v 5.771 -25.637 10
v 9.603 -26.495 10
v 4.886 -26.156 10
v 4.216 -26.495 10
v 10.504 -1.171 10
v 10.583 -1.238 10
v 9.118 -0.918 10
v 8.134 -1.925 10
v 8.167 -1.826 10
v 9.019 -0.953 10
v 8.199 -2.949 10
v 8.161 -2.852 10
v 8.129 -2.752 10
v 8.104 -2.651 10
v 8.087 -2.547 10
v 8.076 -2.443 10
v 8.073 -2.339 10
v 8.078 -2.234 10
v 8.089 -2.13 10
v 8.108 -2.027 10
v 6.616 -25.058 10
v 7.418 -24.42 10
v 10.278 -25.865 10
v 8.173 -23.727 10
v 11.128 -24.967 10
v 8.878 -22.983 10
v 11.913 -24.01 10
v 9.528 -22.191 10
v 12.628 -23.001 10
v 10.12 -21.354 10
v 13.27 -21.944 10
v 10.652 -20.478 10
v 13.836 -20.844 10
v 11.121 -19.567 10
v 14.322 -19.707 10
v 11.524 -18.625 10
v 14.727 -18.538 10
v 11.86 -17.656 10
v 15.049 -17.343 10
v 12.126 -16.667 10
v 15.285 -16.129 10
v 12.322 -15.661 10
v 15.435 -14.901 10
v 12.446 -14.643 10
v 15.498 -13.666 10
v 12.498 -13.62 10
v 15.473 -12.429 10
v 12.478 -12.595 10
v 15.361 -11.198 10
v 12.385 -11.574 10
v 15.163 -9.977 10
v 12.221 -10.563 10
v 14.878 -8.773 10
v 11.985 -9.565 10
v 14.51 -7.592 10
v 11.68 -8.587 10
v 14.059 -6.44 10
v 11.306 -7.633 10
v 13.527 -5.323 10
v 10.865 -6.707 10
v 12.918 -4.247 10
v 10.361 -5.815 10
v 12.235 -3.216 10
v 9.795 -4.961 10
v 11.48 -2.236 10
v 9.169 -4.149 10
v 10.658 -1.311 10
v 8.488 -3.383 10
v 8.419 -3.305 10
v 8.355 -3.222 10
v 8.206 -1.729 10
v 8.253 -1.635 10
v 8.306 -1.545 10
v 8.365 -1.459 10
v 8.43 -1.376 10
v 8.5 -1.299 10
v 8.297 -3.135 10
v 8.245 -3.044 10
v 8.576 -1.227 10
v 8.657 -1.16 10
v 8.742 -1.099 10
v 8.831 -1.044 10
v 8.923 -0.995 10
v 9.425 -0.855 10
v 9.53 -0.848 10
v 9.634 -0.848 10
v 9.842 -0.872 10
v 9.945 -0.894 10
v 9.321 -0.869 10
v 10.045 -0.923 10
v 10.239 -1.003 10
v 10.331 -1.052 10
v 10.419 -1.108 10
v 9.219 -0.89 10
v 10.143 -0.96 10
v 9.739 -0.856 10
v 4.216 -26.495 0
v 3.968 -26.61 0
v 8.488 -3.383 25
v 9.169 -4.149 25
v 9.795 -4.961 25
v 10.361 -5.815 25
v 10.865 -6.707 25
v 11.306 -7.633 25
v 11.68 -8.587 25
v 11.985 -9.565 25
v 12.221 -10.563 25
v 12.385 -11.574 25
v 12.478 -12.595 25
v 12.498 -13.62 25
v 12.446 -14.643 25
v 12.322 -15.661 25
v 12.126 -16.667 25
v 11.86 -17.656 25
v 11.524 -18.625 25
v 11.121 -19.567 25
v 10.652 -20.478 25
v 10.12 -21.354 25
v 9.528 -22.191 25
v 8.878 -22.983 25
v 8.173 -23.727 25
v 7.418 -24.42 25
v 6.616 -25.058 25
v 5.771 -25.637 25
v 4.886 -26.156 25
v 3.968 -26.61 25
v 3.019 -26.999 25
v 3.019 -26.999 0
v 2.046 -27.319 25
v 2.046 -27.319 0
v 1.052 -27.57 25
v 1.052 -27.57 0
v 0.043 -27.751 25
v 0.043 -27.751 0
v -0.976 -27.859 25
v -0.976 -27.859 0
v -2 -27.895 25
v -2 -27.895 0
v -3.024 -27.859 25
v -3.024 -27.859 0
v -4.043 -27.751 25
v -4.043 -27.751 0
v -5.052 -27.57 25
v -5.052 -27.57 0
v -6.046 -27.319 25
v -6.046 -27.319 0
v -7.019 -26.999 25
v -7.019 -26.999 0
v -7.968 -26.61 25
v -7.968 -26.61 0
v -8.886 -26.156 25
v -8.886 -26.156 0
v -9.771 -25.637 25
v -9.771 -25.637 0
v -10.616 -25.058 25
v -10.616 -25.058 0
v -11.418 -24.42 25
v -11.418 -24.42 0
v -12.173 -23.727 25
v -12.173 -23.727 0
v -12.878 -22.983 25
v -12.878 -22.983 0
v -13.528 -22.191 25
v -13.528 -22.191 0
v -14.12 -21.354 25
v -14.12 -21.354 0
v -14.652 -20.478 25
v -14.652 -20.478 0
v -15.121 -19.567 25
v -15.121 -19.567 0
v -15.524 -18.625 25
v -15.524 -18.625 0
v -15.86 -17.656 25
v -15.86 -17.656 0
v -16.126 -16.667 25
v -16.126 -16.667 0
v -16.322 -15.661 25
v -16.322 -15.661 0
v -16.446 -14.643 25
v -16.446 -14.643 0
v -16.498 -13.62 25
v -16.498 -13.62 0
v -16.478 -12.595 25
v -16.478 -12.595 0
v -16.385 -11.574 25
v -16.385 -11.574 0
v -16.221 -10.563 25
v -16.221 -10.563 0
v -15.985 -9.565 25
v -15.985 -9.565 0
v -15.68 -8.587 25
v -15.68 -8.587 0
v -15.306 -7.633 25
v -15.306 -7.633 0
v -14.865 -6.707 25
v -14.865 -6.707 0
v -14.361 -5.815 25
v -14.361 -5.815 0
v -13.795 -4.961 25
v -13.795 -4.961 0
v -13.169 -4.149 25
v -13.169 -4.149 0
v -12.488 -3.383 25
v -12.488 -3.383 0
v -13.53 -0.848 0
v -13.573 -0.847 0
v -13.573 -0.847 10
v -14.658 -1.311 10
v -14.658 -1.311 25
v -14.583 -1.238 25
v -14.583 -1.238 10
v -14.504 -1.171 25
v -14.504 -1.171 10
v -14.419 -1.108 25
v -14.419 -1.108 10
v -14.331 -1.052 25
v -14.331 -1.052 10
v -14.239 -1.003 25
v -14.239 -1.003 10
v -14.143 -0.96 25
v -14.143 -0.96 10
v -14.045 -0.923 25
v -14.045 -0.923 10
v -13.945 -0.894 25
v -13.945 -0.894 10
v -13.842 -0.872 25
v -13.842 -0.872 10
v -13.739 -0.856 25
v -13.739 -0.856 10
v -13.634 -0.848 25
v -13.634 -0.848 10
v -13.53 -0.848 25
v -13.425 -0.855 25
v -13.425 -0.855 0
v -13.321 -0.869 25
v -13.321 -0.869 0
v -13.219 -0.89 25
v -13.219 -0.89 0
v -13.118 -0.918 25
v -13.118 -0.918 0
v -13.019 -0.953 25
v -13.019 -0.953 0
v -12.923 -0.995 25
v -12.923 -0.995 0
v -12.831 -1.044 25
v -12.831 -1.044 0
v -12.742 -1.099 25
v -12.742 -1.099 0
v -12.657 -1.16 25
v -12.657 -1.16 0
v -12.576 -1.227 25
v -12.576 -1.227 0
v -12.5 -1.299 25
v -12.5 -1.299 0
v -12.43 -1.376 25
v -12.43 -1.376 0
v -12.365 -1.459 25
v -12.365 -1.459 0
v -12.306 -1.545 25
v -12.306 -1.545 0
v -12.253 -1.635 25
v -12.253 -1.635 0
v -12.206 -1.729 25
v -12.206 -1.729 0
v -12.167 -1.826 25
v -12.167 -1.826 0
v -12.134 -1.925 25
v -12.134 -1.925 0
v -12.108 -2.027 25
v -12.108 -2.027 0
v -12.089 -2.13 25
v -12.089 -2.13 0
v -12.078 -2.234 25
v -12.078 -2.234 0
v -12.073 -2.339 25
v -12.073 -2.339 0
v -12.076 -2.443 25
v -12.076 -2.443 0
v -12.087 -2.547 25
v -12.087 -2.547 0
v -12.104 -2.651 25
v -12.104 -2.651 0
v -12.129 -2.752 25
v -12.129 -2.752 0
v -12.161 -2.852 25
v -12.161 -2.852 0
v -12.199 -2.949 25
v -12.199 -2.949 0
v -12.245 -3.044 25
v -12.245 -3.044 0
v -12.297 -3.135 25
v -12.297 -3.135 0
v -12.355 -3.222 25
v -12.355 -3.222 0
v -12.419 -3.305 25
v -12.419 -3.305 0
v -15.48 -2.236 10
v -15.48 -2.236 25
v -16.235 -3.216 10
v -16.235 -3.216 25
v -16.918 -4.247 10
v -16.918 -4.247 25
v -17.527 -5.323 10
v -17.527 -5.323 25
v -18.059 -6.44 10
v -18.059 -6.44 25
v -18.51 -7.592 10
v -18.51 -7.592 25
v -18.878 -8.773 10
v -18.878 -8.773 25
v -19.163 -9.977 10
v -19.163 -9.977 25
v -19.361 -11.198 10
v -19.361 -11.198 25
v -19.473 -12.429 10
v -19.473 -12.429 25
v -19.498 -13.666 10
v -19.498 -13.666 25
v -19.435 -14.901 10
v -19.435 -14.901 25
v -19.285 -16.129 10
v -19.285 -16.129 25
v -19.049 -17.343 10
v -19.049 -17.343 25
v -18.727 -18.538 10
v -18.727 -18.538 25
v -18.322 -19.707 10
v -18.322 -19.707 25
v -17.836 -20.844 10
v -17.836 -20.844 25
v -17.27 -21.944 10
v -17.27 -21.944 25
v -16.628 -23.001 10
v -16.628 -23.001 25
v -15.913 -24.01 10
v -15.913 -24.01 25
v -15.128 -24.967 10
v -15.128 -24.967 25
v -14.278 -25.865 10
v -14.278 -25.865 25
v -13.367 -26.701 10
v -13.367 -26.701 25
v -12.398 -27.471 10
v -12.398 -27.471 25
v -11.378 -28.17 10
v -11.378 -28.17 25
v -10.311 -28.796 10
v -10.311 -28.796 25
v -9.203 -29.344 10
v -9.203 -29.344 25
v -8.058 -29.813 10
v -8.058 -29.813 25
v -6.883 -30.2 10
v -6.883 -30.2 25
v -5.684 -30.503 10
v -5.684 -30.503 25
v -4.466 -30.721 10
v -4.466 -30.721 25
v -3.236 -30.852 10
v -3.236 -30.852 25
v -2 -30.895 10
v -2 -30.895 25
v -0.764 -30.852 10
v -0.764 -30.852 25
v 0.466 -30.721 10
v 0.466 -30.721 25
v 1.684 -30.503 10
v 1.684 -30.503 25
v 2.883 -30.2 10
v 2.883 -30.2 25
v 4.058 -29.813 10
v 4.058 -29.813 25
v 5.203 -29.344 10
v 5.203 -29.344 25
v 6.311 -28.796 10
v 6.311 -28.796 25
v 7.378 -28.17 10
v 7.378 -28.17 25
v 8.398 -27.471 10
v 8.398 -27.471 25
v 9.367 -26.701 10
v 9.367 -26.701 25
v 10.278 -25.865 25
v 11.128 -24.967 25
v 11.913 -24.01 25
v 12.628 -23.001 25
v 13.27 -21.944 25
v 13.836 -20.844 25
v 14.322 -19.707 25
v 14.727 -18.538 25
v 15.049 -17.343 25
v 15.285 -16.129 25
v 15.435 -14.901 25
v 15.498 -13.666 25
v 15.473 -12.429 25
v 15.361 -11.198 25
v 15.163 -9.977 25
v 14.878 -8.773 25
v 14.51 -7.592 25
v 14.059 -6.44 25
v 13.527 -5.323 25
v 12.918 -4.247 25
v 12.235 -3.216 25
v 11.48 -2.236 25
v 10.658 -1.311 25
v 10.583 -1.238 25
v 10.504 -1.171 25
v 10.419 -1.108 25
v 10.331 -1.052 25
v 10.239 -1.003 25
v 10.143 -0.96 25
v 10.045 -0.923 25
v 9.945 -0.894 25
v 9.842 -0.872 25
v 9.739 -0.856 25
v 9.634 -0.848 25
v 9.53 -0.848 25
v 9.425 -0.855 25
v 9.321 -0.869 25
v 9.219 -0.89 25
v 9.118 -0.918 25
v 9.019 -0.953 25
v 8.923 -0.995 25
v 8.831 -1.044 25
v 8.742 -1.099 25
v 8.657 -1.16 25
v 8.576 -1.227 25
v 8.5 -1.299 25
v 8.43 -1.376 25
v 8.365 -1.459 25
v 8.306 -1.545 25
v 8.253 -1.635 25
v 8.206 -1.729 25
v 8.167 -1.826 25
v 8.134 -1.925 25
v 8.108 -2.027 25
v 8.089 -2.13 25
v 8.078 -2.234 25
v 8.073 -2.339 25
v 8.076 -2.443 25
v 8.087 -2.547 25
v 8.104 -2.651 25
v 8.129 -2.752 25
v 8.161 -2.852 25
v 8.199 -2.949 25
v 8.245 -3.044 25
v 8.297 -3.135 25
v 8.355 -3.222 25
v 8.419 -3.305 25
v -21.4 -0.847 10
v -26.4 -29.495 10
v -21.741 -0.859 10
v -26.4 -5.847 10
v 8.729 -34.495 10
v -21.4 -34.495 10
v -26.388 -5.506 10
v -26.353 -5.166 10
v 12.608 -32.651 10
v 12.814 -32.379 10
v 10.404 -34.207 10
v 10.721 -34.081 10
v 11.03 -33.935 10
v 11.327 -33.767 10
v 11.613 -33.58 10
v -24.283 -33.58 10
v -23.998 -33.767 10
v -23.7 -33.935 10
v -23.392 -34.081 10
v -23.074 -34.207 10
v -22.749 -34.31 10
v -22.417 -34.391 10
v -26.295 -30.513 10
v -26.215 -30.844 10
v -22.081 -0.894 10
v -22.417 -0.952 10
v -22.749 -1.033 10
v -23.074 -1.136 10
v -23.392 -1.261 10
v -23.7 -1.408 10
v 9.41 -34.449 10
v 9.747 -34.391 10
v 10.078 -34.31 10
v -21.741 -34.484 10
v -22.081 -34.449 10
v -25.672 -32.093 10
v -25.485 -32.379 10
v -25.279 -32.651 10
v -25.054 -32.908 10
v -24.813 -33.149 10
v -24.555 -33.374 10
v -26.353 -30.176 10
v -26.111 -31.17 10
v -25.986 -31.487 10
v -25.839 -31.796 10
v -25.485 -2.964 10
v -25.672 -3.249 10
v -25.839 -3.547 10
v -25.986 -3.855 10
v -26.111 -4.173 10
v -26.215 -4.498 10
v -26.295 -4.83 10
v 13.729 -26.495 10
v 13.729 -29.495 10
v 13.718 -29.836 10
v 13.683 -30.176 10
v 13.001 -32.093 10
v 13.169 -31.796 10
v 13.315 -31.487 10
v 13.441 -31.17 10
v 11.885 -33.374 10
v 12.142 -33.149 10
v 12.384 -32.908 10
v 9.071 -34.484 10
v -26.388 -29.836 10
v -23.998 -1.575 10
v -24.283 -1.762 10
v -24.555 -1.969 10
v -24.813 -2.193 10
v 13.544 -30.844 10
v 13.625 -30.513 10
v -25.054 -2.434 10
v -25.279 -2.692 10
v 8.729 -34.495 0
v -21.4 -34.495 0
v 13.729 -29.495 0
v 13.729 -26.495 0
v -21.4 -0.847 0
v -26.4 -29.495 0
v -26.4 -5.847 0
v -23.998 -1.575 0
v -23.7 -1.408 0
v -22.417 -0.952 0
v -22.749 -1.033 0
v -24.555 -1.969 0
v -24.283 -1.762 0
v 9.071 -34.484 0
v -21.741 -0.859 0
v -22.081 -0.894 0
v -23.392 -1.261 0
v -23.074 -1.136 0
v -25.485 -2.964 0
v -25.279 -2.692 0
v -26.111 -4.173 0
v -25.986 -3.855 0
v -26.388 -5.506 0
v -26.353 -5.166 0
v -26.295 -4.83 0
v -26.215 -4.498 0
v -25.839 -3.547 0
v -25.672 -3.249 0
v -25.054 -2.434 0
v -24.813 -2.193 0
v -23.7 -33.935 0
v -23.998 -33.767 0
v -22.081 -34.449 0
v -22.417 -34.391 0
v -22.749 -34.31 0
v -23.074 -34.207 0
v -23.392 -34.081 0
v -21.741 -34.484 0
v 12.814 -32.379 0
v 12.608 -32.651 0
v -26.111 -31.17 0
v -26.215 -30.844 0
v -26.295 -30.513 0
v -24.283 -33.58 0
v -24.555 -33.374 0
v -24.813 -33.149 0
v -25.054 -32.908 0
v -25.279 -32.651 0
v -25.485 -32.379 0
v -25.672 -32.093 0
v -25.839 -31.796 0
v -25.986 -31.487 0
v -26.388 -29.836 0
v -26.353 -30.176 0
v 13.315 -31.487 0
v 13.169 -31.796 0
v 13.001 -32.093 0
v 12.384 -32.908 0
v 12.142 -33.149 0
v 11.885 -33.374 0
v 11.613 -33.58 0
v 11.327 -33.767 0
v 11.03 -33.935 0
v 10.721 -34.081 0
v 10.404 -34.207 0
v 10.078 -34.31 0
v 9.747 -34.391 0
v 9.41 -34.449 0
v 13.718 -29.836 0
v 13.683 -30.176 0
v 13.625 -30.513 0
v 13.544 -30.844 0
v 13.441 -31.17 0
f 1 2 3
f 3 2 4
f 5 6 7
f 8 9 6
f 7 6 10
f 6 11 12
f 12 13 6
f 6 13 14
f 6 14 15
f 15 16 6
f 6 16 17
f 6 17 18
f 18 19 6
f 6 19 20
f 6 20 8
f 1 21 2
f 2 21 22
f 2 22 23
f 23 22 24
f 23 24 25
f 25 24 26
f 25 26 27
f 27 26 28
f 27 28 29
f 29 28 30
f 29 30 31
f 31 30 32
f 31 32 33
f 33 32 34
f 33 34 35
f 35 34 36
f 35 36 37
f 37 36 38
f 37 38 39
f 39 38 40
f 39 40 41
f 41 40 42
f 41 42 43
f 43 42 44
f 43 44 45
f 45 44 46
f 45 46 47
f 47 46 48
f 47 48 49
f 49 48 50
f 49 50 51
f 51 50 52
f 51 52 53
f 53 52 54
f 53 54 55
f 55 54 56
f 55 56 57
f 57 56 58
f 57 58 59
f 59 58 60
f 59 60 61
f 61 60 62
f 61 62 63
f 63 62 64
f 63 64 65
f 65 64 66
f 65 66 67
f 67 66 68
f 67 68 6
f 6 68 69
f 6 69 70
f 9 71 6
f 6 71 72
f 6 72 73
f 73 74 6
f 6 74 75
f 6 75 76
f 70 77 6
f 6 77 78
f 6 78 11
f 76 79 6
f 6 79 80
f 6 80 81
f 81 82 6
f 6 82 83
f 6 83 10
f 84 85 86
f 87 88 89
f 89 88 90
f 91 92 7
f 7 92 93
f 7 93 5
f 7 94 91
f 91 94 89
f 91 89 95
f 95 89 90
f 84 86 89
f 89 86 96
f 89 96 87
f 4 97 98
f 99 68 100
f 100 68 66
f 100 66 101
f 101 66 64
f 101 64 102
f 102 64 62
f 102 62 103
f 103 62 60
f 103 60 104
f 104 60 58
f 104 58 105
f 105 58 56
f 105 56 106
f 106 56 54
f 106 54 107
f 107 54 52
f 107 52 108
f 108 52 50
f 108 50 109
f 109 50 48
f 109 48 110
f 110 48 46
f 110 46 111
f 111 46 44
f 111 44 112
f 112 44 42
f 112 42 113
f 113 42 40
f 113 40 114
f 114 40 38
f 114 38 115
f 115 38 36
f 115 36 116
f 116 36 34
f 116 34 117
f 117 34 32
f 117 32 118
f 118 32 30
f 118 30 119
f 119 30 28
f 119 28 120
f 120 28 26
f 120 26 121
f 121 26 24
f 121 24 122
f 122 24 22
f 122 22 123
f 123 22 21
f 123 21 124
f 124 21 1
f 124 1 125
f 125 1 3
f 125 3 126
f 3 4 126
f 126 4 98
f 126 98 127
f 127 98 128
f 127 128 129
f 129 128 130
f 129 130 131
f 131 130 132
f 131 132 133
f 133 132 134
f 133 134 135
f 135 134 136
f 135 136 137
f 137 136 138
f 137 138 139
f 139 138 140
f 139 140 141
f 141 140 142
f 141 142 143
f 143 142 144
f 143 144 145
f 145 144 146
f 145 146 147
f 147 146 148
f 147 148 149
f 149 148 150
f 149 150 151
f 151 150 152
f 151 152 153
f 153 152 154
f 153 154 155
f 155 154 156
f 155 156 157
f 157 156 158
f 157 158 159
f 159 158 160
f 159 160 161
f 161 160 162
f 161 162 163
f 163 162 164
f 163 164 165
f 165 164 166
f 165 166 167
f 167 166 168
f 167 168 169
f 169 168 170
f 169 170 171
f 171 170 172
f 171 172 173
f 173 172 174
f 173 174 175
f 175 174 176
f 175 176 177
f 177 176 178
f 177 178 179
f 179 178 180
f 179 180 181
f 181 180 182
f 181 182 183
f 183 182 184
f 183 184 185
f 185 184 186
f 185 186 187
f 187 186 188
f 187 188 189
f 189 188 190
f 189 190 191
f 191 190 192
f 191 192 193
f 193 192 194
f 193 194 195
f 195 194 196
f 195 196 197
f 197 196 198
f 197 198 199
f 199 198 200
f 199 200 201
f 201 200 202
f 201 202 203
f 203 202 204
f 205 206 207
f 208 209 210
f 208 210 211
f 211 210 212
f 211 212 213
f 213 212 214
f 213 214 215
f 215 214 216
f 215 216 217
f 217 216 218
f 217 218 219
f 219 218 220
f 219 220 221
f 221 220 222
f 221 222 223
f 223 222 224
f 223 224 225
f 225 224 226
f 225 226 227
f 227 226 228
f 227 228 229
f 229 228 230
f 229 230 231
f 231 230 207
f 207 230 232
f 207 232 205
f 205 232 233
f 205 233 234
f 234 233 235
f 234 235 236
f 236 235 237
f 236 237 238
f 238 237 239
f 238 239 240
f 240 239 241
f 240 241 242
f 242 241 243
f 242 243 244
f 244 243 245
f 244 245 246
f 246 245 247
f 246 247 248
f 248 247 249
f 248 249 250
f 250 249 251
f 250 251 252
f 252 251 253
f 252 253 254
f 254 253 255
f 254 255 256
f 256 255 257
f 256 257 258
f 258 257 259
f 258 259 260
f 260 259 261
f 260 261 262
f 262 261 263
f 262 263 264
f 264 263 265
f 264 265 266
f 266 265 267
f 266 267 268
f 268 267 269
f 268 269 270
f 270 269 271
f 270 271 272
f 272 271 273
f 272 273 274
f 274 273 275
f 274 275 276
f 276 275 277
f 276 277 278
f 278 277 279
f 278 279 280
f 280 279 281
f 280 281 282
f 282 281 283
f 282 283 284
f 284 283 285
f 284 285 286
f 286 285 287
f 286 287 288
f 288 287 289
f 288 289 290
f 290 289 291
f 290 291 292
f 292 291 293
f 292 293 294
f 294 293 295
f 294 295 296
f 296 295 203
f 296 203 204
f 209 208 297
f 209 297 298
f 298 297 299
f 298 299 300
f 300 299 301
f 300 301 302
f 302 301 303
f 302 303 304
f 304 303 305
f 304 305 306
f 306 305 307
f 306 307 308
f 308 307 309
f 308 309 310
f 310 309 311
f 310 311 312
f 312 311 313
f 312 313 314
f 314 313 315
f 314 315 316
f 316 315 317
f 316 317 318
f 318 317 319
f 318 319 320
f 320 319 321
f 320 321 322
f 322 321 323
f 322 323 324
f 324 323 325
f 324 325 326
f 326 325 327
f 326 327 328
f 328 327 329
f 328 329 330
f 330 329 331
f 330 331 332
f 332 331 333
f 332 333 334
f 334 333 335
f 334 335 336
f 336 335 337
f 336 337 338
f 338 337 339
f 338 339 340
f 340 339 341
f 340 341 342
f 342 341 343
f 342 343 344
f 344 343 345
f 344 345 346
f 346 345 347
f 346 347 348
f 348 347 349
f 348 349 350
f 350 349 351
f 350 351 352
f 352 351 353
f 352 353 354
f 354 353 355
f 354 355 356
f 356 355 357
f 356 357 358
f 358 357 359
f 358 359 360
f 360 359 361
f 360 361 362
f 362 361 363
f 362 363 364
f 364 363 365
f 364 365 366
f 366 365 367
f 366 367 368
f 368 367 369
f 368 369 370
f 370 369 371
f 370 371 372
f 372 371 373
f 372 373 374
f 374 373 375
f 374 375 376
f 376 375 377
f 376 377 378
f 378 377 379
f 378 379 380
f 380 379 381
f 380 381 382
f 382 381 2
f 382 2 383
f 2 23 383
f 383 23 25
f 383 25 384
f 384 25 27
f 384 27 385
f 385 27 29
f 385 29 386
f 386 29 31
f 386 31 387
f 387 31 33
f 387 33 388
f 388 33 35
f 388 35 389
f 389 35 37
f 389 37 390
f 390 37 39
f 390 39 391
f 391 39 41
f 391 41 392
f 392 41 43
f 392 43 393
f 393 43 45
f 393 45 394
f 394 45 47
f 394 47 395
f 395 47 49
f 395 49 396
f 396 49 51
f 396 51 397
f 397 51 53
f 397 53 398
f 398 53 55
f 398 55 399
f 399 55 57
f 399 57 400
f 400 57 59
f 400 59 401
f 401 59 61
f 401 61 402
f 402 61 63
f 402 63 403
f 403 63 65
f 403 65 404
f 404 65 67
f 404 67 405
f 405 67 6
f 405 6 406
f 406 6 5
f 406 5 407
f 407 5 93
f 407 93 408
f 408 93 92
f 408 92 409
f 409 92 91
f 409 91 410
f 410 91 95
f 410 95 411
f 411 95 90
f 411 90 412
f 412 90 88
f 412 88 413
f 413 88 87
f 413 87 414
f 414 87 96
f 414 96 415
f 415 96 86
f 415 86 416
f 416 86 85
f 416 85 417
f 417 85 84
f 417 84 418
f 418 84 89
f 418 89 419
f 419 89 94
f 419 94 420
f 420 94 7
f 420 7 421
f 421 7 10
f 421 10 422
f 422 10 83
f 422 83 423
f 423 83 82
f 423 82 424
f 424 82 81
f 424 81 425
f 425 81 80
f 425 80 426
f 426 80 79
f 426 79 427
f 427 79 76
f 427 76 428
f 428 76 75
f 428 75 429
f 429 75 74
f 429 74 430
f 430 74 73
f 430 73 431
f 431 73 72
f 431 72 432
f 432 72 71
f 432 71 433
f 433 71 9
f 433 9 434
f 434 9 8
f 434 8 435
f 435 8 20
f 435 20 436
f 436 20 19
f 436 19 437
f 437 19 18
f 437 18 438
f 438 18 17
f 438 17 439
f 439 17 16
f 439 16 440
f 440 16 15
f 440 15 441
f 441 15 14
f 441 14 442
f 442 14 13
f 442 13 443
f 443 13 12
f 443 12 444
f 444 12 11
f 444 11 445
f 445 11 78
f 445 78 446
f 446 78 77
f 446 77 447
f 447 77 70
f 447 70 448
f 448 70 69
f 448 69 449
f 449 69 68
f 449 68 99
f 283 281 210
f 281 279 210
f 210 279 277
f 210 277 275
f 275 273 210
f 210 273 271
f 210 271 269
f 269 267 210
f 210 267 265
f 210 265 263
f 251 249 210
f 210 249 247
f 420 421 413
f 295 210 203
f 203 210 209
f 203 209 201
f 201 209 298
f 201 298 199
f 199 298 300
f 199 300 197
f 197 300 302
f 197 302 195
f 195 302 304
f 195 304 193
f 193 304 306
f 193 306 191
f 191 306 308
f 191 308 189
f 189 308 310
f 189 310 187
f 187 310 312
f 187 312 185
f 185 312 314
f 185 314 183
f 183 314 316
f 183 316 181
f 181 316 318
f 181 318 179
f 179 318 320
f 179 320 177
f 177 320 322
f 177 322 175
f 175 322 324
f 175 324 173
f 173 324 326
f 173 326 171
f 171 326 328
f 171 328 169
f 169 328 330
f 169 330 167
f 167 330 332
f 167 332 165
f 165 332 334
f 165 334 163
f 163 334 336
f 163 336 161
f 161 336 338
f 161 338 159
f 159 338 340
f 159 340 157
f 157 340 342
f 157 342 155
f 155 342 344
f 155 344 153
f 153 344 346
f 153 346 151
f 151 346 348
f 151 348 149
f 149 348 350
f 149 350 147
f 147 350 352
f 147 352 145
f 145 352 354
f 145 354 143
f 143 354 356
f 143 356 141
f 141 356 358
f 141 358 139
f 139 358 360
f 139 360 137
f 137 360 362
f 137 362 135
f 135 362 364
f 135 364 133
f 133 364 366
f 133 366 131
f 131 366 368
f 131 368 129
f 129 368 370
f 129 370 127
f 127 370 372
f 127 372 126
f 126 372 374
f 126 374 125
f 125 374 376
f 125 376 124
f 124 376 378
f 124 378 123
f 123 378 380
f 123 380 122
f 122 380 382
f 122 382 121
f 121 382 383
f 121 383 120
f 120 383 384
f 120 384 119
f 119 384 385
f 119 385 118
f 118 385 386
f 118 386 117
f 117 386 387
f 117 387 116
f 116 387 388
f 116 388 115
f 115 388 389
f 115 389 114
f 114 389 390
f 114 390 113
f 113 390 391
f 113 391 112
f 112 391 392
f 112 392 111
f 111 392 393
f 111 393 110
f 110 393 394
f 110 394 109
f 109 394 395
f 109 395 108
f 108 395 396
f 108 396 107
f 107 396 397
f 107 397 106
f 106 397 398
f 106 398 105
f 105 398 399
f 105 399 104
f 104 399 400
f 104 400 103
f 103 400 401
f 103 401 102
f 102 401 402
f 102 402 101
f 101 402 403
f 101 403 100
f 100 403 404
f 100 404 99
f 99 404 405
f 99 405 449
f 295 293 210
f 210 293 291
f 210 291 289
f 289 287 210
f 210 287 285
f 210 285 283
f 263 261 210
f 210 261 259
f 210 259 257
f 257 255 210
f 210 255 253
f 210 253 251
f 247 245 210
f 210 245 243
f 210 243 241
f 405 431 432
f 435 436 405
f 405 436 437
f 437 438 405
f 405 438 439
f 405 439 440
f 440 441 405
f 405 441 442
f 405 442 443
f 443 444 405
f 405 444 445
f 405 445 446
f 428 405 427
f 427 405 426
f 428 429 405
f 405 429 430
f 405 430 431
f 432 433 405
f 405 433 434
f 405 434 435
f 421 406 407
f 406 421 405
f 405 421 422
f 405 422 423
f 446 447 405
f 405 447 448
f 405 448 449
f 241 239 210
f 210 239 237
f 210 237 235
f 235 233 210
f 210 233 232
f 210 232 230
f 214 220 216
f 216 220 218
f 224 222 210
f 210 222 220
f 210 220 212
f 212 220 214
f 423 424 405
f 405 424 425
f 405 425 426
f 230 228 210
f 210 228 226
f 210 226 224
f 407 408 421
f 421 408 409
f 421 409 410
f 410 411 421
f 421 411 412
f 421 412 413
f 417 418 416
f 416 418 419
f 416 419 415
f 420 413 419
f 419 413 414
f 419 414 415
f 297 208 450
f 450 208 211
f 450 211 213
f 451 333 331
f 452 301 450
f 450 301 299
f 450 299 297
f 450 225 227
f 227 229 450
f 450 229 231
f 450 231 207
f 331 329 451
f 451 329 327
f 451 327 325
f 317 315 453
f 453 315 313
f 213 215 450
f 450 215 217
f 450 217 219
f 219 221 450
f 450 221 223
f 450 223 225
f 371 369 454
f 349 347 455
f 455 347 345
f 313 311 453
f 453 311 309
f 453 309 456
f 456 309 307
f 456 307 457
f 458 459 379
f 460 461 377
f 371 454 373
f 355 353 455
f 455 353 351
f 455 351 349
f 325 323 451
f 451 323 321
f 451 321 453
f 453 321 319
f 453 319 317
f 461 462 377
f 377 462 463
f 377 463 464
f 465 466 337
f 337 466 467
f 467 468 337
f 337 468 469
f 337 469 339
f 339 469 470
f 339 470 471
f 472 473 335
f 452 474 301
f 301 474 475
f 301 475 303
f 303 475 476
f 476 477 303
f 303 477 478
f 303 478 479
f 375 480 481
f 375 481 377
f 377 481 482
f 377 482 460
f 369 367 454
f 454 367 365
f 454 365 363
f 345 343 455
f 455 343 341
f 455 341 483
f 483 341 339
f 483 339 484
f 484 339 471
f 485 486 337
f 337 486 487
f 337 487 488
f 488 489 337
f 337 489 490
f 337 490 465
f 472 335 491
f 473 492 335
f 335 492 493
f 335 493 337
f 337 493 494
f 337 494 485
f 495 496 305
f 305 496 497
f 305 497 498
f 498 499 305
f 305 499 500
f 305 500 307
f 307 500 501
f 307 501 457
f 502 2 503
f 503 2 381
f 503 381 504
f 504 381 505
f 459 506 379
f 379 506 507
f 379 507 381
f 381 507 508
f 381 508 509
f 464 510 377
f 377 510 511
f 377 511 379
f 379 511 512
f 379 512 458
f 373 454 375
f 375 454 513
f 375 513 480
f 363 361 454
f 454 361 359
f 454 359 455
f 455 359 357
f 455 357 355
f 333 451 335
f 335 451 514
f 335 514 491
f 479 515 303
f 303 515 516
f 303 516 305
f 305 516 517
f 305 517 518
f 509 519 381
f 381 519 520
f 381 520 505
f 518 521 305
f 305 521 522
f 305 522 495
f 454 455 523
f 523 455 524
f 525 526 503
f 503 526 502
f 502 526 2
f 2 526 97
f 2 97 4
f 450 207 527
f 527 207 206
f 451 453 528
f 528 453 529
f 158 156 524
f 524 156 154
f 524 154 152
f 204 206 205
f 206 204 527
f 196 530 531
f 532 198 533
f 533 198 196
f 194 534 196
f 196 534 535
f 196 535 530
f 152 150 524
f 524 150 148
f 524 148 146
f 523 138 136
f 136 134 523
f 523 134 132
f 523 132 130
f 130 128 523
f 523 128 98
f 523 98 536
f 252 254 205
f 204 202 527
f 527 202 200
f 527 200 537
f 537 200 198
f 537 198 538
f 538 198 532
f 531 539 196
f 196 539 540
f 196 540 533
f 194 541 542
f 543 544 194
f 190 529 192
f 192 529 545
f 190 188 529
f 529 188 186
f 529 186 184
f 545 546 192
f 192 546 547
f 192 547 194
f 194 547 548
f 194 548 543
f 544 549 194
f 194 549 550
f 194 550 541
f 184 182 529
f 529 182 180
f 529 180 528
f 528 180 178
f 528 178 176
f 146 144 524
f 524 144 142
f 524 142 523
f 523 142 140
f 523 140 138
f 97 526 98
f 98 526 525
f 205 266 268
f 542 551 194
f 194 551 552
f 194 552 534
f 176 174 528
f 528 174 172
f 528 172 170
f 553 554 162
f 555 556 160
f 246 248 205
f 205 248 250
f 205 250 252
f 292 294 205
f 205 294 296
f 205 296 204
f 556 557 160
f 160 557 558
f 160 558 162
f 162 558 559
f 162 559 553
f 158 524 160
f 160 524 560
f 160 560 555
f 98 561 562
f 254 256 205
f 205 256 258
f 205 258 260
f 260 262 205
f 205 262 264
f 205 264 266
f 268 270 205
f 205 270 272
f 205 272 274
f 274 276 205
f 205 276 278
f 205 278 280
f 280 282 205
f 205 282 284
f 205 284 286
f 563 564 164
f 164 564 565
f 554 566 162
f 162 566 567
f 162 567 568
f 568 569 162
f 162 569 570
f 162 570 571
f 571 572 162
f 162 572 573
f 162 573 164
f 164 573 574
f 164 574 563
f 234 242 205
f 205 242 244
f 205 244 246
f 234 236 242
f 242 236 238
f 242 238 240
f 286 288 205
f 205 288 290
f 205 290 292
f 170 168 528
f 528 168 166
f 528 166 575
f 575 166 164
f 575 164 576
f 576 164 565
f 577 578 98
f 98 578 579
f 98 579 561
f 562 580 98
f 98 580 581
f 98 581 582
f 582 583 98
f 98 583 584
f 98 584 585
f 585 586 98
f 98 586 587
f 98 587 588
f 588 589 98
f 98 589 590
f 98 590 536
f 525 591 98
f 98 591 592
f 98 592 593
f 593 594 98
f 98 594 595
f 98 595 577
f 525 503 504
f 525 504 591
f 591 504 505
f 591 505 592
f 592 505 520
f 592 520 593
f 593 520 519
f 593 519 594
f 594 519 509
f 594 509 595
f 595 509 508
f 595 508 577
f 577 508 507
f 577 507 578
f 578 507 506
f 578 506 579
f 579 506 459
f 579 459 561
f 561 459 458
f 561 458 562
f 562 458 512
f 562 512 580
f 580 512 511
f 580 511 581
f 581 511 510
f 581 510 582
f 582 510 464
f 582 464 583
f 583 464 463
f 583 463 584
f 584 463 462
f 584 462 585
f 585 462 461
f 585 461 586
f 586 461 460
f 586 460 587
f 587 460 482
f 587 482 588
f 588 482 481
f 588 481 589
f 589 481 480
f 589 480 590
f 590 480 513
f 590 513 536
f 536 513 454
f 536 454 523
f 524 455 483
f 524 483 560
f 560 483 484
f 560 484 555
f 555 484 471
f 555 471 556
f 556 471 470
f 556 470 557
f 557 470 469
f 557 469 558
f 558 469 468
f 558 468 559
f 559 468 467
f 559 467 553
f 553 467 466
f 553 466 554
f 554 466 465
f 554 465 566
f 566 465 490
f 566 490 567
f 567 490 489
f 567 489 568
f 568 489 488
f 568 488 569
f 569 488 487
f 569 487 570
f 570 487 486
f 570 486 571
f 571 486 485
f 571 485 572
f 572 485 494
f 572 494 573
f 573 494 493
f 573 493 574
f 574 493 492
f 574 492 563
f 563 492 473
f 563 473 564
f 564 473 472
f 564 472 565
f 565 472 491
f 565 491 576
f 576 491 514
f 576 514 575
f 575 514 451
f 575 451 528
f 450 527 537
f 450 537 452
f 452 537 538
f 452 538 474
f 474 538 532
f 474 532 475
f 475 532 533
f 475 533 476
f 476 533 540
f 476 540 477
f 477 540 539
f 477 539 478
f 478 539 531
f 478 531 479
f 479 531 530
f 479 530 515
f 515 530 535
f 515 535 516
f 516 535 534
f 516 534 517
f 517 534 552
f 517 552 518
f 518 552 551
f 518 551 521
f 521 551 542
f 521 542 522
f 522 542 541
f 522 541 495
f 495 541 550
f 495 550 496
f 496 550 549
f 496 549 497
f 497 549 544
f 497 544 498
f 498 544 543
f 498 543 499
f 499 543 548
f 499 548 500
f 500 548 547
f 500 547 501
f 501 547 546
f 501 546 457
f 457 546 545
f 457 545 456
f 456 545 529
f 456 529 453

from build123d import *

# Parameters (mm, degrees)
BOSS_EXTRUDE1_START = 10
BOSS_EXTRUDE1_DEPTH = 15
BOSS_EXTRUDE3_DEPTH = 10
FILLET1_R           = 5
BOSS_EXTRUDE4_START = 10
BOSS_EXTRUDE4_DEPTH = 10


with BuildPart() as part:
    # Sketch1 → Boss-Extrude1 (new body)
    with BuildSketch(Plane.XY.offset(BOSS_EXTRUDE1_START)):
        with BuildLine():
            ThreePointArc((8.488266962, -3.382949128), (-2.000000007, -27.895254363), (-12.488266953, -3.382949118))
            ThreePointArc((-12.488266953, -3.382949118), (-12.537504406, -1.262200246), (-14.658253277, -1.311437749))
            ThreePointArc((-14.658253277, -1.311437749), (-1.999999957, -30.895254363), (10.658253217, -1.311437686))
            ThreePointArc((10.658253217, -1.311437686), (8.53750437, -1.262200281), (8.488266962, -3.382949128))
        make_face()
    extrude(amount=BOSS_EXTRUDE1_DEPTH)

    # Sketch2 → Boss-Extrude3 (add)
    with BuildSketch(Plane.XY):
        with BuildLine():
            ThreePointArc((-12.488266958, -3.382949123), (-12.194196355, -1.757122894), (-13.573260086, -0.847193408))
            ThreePointArc((-13.573260086, -0.847193408), (-14.163330605, -0.968129672), (-14.658253225, -1.311437694))
            ThreePointArc((-14.658253225, -1.311437694), (-19.372506678, -15.503811146), (-11.4, -28.156351884))
            Line((-11.4, -28.156351884), (-11.4, -26.495254363))
            Line((-11.4, -26.495254363), (-11.4, -24.435634792))
            ThreePointArc((-11.4, -24.435634792), (-16.480665872, -14.143796874), (-12.488266958, -3.382949123))
        make_face()
        with BuildLine():
            ThreePointArc((-14.658253225, -1.311437694), (-14.163330605, -0.968129672), (-13.573260086, -0.847193408))
            Line((-13.573260086, -0.847193408), (-26.4, -0.847193408))
            Line((-26.4, -0.847193408), (-26.4, -34.495254363))
            Line((-26.4, -34.495254363), (-11.4, -34.495254363))
            Line((-11.4, -34.495254363), (-11.4, -28.156351884))
            ThreePointArc((-11.4, -28.156351884), (-19.372506678, -15.503811146), (-14.658253225, -1.311437694))
        make_face()
        with BuildLine():
            ThreePointArc((9.603447763, -26.495254363), (-0.620287438, -30.840780817), (-11.4, -28.156351884))
            Line((-11.4, -28.156351884), (-11.4, -34.495254363))
            Line((-11.4, -34.495254363), (13.729379502, -34.495254363))
            Line((13.729379502, -34.495254363), (13.729379502, -26.495254363))
            Line((13.729379502, -26.495254363), (9.603447763, -26.495254363))
        make_face()
        with BuildLine():
            Line((-8.216108107, -26.495254363), (-11.4, -26.495254363))
            Line((-11.4, -26.495254363), (-11.4, -28.156351884))
            ThreePointArc((-11.4, -28.156351884), (-0.620287438, -30.840780817), (9.603447763, -26.495254363))
            Line((9.603447763, -26.495254363), (4.216108107, -26.495254363))
            ThreePointArc((4.216108107, -26.495254363), (-2, -27.895254363), (-8.216108107, -26.495254363))
        make_face()
    extrude(amount=BOSS_EXTRUDE3_DEPTH)

    # Fillet1
    fillet1_edges = [part.edges().sort_by_distance(p)[0] for p in [
        (-26.4, -34.495254363, 5),
        (13.729379502, -34.495254363, 5),
        (-26.4, -0.847193408, 5),
    ]]
    fillet(fillet1_edges, radius=FILLET1_R)

    # Sketch4 → Boss-Extrude4 (add)
    with BuildSketch(Plane(origin=(0, 0, 10), x_dir=(-1, 0, 0), z_dir=(0, 0, -1)).offset(BOSS_EXTRUDE4_START)):
        with BuildLine():
            Line((8.216108107, -26.495254363), (11.4, -26.495254363))
            Line((11.4, -26.495254363), (11.4, -24.435634792))
            ThreePointArc((11.4, -24.435634792), (9.875672435, -25.569973403), (8.216108107, -26.495254363))
        make_face()
    extrude(amount=-BOSS_EXTRUDE4_DEPTH)


solid = part.part
